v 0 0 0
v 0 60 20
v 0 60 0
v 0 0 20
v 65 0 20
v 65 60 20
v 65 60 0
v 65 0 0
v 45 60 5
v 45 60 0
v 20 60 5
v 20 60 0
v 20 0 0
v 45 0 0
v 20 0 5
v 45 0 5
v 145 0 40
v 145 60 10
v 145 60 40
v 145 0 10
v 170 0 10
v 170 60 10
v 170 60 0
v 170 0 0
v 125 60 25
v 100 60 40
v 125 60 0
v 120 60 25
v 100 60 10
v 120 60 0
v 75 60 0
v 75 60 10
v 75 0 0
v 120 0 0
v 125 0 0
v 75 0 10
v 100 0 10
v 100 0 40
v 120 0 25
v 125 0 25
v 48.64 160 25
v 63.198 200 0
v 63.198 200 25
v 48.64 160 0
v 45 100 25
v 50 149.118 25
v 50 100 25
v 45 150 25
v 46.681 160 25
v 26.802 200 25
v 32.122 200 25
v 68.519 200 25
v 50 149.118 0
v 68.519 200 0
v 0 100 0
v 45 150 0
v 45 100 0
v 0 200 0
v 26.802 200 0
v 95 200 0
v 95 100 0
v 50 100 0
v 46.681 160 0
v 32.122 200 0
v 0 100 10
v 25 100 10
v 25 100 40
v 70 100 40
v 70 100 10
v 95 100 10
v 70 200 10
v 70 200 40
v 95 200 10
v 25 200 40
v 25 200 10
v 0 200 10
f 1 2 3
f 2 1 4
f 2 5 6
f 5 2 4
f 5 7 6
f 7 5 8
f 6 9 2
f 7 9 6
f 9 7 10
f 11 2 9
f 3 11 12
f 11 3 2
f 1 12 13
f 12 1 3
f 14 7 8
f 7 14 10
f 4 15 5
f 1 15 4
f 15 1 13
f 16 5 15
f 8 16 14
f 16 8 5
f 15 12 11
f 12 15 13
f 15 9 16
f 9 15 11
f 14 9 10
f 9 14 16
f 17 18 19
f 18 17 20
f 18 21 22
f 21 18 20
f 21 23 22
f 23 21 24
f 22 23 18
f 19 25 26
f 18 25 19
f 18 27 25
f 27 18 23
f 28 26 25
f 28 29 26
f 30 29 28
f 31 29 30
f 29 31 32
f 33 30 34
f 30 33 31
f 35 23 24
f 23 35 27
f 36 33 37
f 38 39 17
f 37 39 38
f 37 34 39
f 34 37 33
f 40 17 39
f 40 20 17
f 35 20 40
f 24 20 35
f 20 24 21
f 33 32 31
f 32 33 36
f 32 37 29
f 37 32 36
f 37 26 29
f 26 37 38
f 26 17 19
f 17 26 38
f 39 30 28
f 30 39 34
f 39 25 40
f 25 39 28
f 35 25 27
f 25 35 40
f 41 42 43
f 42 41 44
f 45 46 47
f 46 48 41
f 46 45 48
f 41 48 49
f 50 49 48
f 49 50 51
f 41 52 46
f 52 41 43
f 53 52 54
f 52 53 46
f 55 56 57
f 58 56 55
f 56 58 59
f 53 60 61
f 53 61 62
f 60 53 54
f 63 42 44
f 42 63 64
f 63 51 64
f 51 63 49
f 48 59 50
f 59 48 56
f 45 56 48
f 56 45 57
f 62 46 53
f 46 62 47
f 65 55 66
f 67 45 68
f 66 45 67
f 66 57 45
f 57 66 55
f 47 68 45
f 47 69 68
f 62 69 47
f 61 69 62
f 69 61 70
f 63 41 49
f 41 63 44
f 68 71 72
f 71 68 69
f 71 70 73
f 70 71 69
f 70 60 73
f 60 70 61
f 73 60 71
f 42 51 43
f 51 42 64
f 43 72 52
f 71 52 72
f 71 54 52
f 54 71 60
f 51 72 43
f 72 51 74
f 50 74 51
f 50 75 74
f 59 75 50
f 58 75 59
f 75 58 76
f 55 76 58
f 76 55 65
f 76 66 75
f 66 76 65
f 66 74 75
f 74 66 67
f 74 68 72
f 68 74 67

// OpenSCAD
difference() {
cube([65,60,20]);
translate([20,0,0]) cube([25, 60, 5]);
    
}

translate([100,0,0])

difference() {
union() {    
translate([45,0,0])cube([25,60,10]);
translate([-25,0,0])cube([25,60,10]);
cube([45,60,40
    ]);   
    
}    
translate([20,0,0]) cube([5, 60, 25]);
    
}

translate ([25, 0, 0]) 
difference(){
union() {    
translate([45,100,0])cube([25,100,10]);
translate([-25,100,0])cube([25,100,10]);
translate([0,100,0]) cube([45,100,40
    ]);   
}
union() {
translate([20,150,0]) rotate(-20,0,0) cube([5, 60, 25]);
translate([20,150,0]) rotate(20,0,0) cube([5, 60, 25]);
translate([20,100,0]) rotate(0,0,0) cube([5, 60, 25]);
}
};
